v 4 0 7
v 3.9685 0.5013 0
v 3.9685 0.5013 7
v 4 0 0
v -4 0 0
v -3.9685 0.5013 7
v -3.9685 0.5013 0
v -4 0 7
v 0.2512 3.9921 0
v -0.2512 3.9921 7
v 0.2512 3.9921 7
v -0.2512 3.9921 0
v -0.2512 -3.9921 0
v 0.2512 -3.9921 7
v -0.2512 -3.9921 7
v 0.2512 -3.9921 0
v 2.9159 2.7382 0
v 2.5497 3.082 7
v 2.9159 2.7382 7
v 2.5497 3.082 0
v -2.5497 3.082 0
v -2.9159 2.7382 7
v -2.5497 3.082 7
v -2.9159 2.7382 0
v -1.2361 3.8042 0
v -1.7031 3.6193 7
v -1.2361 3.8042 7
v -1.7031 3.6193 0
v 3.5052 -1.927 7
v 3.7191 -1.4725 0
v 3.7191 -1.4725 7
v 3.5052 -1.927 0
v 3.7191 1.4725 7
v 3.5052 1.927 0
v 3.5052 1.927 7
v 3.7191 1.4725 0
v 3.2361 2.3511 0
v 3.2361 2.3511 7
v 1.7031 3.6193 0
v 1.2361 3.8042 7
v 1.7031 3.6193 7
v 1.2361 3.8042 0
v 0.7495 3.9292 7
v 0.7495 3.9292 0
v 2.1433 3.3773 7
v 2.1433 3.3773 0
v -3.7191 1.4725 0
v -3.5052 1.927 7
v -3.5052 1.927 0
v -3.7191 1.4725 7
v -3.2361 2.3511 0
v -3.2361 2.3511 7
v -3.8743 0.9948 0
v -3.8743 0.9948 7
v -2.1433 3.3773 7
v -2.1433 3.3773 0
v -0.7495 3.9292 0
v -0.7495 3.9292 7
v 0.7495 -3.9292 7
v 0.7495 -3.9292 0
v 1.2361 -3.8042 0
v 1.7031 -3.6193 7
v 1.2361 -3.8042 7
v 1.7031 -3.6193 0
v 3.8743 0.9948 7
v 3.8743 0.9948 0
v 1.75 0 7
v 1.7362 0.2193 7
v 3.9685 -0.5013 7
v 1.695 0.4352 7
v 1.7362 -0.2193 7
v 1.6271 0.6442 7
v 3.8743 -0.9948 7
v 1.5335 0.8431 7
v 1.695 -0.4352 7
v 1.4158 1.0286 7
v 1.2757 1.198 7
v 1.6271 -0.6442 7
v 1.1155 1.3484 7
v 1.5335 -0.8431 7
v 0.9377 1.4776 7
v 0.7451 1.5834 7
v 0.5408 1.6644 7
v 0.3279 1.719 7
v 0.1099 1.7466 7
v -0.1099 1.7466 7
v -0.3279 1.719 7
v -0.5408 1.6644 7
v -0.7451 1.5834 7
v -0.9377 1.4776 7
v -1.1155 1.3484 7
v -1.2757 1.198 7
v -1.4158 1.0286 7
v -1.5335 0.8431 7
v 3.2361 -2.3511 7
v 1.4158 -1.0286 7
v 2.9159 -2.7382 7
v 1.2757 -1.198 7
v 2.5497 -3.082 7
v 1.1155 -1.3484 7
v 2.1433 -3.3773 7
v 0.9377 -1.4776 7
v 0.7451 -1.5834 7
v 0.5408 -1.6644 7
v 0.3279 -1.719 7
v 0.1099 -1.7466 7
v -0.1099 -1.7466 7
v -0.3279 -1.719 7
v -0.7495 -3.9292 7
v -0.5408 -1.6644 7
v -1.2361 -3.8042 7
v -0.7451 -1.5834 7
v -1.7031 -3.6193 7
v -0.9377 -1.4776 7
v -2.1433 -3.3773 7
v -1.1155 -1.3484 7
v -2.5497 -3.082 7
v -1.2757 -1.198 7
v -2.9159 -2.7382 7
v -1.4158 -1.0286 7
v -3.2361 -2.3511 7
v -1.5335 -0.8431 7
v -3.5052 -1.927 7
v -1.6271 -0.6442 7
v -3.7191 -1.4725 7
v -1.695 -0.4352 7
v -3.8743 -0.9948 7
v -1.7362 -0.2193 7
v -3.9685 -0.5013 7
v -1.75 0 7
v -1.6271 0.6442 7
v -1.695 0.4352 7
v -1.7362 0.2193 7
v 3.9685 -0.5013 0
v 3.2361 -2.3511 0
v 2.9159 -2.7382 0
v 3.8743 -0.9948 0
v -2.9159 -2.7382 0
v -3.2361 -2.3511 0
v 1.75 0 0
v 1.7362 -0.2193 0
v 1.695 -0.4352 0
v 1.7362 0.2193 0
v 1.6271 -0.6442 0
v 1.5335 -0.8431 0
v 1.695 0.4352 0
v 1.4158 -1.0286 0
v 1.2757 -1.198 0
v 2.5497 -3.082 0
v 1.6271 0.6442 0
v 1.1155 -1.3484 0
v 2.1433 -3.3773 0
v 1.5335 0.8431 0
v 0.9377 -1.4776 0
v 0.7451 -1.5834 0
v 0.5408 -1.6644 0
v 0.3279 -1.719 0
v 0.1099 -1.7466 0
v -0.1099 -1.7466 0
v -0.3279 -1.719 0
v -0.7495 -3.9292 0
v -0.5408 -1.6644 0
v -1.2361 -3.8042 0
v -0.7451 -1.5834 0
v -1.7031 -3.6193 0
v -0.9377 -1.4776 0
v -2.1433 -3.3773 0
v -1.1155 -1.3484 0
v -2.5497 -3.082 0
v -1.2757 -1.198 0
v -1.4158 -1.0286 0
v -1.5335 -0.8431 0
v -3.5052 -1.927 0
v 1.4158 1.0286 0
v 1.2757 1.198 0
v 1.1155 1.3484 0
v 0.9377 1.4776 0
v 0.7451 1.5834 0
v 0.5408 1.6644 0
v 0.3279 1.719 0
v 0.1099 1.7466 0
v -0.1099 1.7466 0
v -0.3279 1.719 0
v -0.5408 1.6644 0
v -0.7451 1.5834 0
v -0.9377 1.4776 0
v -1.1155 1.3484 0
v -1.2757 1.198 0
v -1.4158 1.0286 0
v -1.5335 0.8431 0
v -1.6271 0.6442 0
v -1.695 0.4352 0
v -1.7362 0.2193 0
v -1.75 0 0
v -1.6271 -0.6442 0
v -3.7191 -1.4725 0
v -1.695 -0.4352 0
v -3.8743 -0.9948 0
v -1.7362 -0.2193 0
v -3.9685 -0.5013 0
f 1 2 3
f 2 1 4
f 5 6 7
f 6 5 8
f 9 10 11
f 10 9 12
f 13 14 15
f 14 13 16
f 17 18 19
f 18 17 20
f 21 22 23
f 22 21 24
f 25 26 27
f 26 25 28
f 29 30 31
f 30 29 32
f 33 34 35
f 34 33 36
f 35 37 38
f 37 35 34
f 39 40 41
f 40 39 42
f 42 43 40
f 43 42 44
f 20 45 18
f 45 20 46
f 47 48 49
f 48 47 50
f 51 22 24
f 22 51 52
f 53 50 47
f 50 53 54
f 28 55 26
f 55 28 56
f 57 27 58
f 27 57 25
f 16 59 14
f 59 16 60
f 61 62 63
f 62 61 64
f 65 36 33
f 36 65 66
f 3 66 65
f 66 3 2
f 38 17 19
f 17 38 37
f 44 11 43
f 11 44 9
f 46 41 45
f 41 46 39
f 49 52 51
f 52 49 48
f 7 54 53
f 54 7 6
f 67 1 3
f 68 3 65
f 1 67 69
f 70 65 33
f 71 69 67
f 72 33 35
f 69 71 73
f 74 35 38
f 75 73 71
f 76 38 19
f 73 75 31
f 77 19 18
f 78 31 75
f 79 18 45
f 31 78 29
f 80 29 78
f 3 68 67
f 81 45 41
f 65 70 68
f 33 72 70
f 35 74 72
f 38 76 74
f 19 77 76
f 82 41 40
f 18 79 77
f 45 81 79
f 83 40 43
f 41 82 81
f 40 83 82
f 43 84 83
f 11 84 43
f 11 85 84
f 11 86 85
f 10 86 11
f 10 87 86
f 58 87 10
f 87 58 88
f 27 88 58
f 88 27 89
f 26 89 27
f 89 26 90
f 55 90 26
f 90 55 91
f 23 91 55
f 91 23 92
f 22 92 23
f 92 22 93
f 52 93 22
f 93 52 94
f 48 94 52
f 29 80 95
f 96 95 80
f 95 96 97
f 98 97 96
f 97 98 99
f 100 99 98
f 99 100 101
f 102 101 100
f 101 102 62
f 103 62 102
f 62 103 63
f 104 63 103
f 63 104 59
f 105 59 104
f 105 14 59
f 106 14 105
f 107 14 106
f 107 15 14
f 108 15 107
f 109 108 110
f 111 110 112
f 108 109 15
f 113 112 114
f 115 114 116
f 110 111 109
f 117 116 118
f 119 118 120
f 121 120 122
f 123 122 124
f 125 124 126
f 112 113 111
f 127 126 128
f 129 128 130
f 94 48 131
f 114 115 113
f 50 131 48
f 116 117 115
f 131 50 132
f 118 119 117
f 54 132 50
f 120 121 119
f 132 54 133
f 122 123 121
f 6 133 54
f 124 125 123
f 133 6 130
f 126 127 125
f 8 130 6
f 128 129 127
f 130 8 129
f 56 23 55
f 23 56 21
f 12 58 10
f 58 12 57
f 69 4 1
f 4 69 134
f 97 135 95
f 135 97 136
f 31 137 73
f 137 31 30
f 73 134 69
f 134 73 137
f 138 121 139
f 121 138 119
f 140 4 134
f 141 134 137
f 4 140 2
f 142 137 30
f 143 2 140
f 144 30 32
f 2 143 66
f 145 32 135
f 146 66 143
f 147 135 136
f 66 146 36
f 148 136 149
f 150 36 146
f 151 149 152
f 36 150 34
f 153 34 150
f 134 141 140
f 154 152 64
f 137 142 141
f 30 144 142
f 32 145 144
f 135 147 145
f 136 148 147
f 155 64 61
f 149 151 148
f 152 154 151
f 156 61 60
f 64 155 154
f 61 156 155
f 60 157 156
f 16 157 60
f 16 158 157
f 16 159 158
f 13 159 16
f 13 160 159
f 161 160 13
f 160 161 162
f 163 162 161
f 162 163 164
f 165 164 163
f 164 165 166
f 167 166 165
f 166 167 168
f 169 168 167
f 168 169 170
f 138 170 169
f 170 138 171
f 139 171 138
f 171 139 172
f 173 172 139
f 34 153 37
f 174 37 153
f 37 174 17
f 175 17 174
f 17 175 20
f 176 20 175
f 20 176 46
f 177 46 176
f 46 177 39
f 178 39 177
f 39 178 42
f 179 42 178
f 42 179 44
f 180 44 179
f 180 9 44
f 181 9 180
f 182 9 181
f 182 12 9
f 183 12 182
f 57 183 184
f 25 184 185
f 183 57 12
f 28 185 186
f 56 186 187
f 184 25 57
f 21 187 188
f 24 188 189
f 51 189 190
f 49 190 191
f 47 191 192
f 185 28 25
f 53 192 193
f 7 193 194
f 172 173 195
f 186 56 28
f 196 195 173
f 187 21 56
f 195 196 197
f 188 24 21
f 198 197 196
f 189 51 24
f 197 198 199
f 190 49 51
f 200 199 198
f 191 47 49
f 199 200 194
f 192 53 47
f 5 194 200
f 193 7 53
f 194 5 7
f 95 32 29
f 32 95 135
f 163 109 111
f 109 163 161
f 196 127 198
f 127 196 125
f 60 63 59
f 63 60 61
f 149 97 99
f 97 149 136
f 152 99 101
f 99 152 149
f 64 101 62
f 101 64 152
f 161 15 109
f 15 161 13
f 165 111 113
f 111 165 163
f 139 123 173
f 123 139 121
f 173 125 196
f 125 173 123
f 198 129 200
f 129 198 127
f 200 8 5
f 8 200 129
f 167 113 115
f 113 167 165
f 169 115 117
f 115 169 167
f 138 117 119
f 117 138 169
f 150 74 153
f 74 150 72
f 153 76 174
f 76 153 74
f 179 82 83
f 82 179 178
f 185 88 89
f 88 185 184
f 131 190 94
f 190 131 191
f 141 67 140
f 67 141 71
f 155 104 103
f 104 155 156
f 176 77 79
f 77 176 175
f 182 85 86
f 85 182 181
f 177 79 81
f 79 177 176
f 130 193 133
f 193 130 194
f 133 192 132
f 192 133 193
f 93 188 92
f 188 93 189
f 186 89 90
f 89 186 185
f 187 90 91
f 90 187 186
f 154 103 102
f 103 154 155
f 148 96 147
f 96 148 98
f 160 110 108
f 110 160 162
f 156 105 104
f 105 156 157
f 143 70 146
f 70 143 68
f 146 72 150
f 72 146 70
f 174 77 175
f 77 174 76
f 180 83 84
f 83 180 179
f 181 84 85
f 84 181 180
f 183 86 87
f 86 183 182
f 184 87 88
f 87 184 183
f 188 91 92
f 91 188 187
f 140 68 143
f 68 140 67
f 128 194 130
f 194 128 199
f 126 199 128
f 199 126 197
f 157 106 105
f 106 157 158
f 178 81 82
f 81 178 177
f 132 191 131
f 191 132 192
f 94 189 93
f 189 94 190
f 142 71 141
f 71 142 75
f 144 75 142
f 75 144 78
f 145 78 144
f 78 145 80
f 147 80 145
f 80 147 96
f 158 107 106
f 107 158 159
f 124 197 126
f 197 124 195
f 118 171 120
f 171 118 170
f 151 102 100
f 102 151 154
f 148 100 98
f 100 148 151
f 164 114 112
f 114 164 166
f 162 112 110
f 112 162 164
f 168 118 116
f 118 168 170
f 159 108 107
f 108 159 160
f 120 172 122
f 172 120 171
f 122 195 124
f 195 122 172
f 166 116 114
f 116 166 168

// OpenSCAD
$fn=50;

difference() {
   cylinder(d=8,h=7); // was 4.8
   translate([0,0,-0.5]) cylinder(d=3.5,h=8); // was 3.2
}
